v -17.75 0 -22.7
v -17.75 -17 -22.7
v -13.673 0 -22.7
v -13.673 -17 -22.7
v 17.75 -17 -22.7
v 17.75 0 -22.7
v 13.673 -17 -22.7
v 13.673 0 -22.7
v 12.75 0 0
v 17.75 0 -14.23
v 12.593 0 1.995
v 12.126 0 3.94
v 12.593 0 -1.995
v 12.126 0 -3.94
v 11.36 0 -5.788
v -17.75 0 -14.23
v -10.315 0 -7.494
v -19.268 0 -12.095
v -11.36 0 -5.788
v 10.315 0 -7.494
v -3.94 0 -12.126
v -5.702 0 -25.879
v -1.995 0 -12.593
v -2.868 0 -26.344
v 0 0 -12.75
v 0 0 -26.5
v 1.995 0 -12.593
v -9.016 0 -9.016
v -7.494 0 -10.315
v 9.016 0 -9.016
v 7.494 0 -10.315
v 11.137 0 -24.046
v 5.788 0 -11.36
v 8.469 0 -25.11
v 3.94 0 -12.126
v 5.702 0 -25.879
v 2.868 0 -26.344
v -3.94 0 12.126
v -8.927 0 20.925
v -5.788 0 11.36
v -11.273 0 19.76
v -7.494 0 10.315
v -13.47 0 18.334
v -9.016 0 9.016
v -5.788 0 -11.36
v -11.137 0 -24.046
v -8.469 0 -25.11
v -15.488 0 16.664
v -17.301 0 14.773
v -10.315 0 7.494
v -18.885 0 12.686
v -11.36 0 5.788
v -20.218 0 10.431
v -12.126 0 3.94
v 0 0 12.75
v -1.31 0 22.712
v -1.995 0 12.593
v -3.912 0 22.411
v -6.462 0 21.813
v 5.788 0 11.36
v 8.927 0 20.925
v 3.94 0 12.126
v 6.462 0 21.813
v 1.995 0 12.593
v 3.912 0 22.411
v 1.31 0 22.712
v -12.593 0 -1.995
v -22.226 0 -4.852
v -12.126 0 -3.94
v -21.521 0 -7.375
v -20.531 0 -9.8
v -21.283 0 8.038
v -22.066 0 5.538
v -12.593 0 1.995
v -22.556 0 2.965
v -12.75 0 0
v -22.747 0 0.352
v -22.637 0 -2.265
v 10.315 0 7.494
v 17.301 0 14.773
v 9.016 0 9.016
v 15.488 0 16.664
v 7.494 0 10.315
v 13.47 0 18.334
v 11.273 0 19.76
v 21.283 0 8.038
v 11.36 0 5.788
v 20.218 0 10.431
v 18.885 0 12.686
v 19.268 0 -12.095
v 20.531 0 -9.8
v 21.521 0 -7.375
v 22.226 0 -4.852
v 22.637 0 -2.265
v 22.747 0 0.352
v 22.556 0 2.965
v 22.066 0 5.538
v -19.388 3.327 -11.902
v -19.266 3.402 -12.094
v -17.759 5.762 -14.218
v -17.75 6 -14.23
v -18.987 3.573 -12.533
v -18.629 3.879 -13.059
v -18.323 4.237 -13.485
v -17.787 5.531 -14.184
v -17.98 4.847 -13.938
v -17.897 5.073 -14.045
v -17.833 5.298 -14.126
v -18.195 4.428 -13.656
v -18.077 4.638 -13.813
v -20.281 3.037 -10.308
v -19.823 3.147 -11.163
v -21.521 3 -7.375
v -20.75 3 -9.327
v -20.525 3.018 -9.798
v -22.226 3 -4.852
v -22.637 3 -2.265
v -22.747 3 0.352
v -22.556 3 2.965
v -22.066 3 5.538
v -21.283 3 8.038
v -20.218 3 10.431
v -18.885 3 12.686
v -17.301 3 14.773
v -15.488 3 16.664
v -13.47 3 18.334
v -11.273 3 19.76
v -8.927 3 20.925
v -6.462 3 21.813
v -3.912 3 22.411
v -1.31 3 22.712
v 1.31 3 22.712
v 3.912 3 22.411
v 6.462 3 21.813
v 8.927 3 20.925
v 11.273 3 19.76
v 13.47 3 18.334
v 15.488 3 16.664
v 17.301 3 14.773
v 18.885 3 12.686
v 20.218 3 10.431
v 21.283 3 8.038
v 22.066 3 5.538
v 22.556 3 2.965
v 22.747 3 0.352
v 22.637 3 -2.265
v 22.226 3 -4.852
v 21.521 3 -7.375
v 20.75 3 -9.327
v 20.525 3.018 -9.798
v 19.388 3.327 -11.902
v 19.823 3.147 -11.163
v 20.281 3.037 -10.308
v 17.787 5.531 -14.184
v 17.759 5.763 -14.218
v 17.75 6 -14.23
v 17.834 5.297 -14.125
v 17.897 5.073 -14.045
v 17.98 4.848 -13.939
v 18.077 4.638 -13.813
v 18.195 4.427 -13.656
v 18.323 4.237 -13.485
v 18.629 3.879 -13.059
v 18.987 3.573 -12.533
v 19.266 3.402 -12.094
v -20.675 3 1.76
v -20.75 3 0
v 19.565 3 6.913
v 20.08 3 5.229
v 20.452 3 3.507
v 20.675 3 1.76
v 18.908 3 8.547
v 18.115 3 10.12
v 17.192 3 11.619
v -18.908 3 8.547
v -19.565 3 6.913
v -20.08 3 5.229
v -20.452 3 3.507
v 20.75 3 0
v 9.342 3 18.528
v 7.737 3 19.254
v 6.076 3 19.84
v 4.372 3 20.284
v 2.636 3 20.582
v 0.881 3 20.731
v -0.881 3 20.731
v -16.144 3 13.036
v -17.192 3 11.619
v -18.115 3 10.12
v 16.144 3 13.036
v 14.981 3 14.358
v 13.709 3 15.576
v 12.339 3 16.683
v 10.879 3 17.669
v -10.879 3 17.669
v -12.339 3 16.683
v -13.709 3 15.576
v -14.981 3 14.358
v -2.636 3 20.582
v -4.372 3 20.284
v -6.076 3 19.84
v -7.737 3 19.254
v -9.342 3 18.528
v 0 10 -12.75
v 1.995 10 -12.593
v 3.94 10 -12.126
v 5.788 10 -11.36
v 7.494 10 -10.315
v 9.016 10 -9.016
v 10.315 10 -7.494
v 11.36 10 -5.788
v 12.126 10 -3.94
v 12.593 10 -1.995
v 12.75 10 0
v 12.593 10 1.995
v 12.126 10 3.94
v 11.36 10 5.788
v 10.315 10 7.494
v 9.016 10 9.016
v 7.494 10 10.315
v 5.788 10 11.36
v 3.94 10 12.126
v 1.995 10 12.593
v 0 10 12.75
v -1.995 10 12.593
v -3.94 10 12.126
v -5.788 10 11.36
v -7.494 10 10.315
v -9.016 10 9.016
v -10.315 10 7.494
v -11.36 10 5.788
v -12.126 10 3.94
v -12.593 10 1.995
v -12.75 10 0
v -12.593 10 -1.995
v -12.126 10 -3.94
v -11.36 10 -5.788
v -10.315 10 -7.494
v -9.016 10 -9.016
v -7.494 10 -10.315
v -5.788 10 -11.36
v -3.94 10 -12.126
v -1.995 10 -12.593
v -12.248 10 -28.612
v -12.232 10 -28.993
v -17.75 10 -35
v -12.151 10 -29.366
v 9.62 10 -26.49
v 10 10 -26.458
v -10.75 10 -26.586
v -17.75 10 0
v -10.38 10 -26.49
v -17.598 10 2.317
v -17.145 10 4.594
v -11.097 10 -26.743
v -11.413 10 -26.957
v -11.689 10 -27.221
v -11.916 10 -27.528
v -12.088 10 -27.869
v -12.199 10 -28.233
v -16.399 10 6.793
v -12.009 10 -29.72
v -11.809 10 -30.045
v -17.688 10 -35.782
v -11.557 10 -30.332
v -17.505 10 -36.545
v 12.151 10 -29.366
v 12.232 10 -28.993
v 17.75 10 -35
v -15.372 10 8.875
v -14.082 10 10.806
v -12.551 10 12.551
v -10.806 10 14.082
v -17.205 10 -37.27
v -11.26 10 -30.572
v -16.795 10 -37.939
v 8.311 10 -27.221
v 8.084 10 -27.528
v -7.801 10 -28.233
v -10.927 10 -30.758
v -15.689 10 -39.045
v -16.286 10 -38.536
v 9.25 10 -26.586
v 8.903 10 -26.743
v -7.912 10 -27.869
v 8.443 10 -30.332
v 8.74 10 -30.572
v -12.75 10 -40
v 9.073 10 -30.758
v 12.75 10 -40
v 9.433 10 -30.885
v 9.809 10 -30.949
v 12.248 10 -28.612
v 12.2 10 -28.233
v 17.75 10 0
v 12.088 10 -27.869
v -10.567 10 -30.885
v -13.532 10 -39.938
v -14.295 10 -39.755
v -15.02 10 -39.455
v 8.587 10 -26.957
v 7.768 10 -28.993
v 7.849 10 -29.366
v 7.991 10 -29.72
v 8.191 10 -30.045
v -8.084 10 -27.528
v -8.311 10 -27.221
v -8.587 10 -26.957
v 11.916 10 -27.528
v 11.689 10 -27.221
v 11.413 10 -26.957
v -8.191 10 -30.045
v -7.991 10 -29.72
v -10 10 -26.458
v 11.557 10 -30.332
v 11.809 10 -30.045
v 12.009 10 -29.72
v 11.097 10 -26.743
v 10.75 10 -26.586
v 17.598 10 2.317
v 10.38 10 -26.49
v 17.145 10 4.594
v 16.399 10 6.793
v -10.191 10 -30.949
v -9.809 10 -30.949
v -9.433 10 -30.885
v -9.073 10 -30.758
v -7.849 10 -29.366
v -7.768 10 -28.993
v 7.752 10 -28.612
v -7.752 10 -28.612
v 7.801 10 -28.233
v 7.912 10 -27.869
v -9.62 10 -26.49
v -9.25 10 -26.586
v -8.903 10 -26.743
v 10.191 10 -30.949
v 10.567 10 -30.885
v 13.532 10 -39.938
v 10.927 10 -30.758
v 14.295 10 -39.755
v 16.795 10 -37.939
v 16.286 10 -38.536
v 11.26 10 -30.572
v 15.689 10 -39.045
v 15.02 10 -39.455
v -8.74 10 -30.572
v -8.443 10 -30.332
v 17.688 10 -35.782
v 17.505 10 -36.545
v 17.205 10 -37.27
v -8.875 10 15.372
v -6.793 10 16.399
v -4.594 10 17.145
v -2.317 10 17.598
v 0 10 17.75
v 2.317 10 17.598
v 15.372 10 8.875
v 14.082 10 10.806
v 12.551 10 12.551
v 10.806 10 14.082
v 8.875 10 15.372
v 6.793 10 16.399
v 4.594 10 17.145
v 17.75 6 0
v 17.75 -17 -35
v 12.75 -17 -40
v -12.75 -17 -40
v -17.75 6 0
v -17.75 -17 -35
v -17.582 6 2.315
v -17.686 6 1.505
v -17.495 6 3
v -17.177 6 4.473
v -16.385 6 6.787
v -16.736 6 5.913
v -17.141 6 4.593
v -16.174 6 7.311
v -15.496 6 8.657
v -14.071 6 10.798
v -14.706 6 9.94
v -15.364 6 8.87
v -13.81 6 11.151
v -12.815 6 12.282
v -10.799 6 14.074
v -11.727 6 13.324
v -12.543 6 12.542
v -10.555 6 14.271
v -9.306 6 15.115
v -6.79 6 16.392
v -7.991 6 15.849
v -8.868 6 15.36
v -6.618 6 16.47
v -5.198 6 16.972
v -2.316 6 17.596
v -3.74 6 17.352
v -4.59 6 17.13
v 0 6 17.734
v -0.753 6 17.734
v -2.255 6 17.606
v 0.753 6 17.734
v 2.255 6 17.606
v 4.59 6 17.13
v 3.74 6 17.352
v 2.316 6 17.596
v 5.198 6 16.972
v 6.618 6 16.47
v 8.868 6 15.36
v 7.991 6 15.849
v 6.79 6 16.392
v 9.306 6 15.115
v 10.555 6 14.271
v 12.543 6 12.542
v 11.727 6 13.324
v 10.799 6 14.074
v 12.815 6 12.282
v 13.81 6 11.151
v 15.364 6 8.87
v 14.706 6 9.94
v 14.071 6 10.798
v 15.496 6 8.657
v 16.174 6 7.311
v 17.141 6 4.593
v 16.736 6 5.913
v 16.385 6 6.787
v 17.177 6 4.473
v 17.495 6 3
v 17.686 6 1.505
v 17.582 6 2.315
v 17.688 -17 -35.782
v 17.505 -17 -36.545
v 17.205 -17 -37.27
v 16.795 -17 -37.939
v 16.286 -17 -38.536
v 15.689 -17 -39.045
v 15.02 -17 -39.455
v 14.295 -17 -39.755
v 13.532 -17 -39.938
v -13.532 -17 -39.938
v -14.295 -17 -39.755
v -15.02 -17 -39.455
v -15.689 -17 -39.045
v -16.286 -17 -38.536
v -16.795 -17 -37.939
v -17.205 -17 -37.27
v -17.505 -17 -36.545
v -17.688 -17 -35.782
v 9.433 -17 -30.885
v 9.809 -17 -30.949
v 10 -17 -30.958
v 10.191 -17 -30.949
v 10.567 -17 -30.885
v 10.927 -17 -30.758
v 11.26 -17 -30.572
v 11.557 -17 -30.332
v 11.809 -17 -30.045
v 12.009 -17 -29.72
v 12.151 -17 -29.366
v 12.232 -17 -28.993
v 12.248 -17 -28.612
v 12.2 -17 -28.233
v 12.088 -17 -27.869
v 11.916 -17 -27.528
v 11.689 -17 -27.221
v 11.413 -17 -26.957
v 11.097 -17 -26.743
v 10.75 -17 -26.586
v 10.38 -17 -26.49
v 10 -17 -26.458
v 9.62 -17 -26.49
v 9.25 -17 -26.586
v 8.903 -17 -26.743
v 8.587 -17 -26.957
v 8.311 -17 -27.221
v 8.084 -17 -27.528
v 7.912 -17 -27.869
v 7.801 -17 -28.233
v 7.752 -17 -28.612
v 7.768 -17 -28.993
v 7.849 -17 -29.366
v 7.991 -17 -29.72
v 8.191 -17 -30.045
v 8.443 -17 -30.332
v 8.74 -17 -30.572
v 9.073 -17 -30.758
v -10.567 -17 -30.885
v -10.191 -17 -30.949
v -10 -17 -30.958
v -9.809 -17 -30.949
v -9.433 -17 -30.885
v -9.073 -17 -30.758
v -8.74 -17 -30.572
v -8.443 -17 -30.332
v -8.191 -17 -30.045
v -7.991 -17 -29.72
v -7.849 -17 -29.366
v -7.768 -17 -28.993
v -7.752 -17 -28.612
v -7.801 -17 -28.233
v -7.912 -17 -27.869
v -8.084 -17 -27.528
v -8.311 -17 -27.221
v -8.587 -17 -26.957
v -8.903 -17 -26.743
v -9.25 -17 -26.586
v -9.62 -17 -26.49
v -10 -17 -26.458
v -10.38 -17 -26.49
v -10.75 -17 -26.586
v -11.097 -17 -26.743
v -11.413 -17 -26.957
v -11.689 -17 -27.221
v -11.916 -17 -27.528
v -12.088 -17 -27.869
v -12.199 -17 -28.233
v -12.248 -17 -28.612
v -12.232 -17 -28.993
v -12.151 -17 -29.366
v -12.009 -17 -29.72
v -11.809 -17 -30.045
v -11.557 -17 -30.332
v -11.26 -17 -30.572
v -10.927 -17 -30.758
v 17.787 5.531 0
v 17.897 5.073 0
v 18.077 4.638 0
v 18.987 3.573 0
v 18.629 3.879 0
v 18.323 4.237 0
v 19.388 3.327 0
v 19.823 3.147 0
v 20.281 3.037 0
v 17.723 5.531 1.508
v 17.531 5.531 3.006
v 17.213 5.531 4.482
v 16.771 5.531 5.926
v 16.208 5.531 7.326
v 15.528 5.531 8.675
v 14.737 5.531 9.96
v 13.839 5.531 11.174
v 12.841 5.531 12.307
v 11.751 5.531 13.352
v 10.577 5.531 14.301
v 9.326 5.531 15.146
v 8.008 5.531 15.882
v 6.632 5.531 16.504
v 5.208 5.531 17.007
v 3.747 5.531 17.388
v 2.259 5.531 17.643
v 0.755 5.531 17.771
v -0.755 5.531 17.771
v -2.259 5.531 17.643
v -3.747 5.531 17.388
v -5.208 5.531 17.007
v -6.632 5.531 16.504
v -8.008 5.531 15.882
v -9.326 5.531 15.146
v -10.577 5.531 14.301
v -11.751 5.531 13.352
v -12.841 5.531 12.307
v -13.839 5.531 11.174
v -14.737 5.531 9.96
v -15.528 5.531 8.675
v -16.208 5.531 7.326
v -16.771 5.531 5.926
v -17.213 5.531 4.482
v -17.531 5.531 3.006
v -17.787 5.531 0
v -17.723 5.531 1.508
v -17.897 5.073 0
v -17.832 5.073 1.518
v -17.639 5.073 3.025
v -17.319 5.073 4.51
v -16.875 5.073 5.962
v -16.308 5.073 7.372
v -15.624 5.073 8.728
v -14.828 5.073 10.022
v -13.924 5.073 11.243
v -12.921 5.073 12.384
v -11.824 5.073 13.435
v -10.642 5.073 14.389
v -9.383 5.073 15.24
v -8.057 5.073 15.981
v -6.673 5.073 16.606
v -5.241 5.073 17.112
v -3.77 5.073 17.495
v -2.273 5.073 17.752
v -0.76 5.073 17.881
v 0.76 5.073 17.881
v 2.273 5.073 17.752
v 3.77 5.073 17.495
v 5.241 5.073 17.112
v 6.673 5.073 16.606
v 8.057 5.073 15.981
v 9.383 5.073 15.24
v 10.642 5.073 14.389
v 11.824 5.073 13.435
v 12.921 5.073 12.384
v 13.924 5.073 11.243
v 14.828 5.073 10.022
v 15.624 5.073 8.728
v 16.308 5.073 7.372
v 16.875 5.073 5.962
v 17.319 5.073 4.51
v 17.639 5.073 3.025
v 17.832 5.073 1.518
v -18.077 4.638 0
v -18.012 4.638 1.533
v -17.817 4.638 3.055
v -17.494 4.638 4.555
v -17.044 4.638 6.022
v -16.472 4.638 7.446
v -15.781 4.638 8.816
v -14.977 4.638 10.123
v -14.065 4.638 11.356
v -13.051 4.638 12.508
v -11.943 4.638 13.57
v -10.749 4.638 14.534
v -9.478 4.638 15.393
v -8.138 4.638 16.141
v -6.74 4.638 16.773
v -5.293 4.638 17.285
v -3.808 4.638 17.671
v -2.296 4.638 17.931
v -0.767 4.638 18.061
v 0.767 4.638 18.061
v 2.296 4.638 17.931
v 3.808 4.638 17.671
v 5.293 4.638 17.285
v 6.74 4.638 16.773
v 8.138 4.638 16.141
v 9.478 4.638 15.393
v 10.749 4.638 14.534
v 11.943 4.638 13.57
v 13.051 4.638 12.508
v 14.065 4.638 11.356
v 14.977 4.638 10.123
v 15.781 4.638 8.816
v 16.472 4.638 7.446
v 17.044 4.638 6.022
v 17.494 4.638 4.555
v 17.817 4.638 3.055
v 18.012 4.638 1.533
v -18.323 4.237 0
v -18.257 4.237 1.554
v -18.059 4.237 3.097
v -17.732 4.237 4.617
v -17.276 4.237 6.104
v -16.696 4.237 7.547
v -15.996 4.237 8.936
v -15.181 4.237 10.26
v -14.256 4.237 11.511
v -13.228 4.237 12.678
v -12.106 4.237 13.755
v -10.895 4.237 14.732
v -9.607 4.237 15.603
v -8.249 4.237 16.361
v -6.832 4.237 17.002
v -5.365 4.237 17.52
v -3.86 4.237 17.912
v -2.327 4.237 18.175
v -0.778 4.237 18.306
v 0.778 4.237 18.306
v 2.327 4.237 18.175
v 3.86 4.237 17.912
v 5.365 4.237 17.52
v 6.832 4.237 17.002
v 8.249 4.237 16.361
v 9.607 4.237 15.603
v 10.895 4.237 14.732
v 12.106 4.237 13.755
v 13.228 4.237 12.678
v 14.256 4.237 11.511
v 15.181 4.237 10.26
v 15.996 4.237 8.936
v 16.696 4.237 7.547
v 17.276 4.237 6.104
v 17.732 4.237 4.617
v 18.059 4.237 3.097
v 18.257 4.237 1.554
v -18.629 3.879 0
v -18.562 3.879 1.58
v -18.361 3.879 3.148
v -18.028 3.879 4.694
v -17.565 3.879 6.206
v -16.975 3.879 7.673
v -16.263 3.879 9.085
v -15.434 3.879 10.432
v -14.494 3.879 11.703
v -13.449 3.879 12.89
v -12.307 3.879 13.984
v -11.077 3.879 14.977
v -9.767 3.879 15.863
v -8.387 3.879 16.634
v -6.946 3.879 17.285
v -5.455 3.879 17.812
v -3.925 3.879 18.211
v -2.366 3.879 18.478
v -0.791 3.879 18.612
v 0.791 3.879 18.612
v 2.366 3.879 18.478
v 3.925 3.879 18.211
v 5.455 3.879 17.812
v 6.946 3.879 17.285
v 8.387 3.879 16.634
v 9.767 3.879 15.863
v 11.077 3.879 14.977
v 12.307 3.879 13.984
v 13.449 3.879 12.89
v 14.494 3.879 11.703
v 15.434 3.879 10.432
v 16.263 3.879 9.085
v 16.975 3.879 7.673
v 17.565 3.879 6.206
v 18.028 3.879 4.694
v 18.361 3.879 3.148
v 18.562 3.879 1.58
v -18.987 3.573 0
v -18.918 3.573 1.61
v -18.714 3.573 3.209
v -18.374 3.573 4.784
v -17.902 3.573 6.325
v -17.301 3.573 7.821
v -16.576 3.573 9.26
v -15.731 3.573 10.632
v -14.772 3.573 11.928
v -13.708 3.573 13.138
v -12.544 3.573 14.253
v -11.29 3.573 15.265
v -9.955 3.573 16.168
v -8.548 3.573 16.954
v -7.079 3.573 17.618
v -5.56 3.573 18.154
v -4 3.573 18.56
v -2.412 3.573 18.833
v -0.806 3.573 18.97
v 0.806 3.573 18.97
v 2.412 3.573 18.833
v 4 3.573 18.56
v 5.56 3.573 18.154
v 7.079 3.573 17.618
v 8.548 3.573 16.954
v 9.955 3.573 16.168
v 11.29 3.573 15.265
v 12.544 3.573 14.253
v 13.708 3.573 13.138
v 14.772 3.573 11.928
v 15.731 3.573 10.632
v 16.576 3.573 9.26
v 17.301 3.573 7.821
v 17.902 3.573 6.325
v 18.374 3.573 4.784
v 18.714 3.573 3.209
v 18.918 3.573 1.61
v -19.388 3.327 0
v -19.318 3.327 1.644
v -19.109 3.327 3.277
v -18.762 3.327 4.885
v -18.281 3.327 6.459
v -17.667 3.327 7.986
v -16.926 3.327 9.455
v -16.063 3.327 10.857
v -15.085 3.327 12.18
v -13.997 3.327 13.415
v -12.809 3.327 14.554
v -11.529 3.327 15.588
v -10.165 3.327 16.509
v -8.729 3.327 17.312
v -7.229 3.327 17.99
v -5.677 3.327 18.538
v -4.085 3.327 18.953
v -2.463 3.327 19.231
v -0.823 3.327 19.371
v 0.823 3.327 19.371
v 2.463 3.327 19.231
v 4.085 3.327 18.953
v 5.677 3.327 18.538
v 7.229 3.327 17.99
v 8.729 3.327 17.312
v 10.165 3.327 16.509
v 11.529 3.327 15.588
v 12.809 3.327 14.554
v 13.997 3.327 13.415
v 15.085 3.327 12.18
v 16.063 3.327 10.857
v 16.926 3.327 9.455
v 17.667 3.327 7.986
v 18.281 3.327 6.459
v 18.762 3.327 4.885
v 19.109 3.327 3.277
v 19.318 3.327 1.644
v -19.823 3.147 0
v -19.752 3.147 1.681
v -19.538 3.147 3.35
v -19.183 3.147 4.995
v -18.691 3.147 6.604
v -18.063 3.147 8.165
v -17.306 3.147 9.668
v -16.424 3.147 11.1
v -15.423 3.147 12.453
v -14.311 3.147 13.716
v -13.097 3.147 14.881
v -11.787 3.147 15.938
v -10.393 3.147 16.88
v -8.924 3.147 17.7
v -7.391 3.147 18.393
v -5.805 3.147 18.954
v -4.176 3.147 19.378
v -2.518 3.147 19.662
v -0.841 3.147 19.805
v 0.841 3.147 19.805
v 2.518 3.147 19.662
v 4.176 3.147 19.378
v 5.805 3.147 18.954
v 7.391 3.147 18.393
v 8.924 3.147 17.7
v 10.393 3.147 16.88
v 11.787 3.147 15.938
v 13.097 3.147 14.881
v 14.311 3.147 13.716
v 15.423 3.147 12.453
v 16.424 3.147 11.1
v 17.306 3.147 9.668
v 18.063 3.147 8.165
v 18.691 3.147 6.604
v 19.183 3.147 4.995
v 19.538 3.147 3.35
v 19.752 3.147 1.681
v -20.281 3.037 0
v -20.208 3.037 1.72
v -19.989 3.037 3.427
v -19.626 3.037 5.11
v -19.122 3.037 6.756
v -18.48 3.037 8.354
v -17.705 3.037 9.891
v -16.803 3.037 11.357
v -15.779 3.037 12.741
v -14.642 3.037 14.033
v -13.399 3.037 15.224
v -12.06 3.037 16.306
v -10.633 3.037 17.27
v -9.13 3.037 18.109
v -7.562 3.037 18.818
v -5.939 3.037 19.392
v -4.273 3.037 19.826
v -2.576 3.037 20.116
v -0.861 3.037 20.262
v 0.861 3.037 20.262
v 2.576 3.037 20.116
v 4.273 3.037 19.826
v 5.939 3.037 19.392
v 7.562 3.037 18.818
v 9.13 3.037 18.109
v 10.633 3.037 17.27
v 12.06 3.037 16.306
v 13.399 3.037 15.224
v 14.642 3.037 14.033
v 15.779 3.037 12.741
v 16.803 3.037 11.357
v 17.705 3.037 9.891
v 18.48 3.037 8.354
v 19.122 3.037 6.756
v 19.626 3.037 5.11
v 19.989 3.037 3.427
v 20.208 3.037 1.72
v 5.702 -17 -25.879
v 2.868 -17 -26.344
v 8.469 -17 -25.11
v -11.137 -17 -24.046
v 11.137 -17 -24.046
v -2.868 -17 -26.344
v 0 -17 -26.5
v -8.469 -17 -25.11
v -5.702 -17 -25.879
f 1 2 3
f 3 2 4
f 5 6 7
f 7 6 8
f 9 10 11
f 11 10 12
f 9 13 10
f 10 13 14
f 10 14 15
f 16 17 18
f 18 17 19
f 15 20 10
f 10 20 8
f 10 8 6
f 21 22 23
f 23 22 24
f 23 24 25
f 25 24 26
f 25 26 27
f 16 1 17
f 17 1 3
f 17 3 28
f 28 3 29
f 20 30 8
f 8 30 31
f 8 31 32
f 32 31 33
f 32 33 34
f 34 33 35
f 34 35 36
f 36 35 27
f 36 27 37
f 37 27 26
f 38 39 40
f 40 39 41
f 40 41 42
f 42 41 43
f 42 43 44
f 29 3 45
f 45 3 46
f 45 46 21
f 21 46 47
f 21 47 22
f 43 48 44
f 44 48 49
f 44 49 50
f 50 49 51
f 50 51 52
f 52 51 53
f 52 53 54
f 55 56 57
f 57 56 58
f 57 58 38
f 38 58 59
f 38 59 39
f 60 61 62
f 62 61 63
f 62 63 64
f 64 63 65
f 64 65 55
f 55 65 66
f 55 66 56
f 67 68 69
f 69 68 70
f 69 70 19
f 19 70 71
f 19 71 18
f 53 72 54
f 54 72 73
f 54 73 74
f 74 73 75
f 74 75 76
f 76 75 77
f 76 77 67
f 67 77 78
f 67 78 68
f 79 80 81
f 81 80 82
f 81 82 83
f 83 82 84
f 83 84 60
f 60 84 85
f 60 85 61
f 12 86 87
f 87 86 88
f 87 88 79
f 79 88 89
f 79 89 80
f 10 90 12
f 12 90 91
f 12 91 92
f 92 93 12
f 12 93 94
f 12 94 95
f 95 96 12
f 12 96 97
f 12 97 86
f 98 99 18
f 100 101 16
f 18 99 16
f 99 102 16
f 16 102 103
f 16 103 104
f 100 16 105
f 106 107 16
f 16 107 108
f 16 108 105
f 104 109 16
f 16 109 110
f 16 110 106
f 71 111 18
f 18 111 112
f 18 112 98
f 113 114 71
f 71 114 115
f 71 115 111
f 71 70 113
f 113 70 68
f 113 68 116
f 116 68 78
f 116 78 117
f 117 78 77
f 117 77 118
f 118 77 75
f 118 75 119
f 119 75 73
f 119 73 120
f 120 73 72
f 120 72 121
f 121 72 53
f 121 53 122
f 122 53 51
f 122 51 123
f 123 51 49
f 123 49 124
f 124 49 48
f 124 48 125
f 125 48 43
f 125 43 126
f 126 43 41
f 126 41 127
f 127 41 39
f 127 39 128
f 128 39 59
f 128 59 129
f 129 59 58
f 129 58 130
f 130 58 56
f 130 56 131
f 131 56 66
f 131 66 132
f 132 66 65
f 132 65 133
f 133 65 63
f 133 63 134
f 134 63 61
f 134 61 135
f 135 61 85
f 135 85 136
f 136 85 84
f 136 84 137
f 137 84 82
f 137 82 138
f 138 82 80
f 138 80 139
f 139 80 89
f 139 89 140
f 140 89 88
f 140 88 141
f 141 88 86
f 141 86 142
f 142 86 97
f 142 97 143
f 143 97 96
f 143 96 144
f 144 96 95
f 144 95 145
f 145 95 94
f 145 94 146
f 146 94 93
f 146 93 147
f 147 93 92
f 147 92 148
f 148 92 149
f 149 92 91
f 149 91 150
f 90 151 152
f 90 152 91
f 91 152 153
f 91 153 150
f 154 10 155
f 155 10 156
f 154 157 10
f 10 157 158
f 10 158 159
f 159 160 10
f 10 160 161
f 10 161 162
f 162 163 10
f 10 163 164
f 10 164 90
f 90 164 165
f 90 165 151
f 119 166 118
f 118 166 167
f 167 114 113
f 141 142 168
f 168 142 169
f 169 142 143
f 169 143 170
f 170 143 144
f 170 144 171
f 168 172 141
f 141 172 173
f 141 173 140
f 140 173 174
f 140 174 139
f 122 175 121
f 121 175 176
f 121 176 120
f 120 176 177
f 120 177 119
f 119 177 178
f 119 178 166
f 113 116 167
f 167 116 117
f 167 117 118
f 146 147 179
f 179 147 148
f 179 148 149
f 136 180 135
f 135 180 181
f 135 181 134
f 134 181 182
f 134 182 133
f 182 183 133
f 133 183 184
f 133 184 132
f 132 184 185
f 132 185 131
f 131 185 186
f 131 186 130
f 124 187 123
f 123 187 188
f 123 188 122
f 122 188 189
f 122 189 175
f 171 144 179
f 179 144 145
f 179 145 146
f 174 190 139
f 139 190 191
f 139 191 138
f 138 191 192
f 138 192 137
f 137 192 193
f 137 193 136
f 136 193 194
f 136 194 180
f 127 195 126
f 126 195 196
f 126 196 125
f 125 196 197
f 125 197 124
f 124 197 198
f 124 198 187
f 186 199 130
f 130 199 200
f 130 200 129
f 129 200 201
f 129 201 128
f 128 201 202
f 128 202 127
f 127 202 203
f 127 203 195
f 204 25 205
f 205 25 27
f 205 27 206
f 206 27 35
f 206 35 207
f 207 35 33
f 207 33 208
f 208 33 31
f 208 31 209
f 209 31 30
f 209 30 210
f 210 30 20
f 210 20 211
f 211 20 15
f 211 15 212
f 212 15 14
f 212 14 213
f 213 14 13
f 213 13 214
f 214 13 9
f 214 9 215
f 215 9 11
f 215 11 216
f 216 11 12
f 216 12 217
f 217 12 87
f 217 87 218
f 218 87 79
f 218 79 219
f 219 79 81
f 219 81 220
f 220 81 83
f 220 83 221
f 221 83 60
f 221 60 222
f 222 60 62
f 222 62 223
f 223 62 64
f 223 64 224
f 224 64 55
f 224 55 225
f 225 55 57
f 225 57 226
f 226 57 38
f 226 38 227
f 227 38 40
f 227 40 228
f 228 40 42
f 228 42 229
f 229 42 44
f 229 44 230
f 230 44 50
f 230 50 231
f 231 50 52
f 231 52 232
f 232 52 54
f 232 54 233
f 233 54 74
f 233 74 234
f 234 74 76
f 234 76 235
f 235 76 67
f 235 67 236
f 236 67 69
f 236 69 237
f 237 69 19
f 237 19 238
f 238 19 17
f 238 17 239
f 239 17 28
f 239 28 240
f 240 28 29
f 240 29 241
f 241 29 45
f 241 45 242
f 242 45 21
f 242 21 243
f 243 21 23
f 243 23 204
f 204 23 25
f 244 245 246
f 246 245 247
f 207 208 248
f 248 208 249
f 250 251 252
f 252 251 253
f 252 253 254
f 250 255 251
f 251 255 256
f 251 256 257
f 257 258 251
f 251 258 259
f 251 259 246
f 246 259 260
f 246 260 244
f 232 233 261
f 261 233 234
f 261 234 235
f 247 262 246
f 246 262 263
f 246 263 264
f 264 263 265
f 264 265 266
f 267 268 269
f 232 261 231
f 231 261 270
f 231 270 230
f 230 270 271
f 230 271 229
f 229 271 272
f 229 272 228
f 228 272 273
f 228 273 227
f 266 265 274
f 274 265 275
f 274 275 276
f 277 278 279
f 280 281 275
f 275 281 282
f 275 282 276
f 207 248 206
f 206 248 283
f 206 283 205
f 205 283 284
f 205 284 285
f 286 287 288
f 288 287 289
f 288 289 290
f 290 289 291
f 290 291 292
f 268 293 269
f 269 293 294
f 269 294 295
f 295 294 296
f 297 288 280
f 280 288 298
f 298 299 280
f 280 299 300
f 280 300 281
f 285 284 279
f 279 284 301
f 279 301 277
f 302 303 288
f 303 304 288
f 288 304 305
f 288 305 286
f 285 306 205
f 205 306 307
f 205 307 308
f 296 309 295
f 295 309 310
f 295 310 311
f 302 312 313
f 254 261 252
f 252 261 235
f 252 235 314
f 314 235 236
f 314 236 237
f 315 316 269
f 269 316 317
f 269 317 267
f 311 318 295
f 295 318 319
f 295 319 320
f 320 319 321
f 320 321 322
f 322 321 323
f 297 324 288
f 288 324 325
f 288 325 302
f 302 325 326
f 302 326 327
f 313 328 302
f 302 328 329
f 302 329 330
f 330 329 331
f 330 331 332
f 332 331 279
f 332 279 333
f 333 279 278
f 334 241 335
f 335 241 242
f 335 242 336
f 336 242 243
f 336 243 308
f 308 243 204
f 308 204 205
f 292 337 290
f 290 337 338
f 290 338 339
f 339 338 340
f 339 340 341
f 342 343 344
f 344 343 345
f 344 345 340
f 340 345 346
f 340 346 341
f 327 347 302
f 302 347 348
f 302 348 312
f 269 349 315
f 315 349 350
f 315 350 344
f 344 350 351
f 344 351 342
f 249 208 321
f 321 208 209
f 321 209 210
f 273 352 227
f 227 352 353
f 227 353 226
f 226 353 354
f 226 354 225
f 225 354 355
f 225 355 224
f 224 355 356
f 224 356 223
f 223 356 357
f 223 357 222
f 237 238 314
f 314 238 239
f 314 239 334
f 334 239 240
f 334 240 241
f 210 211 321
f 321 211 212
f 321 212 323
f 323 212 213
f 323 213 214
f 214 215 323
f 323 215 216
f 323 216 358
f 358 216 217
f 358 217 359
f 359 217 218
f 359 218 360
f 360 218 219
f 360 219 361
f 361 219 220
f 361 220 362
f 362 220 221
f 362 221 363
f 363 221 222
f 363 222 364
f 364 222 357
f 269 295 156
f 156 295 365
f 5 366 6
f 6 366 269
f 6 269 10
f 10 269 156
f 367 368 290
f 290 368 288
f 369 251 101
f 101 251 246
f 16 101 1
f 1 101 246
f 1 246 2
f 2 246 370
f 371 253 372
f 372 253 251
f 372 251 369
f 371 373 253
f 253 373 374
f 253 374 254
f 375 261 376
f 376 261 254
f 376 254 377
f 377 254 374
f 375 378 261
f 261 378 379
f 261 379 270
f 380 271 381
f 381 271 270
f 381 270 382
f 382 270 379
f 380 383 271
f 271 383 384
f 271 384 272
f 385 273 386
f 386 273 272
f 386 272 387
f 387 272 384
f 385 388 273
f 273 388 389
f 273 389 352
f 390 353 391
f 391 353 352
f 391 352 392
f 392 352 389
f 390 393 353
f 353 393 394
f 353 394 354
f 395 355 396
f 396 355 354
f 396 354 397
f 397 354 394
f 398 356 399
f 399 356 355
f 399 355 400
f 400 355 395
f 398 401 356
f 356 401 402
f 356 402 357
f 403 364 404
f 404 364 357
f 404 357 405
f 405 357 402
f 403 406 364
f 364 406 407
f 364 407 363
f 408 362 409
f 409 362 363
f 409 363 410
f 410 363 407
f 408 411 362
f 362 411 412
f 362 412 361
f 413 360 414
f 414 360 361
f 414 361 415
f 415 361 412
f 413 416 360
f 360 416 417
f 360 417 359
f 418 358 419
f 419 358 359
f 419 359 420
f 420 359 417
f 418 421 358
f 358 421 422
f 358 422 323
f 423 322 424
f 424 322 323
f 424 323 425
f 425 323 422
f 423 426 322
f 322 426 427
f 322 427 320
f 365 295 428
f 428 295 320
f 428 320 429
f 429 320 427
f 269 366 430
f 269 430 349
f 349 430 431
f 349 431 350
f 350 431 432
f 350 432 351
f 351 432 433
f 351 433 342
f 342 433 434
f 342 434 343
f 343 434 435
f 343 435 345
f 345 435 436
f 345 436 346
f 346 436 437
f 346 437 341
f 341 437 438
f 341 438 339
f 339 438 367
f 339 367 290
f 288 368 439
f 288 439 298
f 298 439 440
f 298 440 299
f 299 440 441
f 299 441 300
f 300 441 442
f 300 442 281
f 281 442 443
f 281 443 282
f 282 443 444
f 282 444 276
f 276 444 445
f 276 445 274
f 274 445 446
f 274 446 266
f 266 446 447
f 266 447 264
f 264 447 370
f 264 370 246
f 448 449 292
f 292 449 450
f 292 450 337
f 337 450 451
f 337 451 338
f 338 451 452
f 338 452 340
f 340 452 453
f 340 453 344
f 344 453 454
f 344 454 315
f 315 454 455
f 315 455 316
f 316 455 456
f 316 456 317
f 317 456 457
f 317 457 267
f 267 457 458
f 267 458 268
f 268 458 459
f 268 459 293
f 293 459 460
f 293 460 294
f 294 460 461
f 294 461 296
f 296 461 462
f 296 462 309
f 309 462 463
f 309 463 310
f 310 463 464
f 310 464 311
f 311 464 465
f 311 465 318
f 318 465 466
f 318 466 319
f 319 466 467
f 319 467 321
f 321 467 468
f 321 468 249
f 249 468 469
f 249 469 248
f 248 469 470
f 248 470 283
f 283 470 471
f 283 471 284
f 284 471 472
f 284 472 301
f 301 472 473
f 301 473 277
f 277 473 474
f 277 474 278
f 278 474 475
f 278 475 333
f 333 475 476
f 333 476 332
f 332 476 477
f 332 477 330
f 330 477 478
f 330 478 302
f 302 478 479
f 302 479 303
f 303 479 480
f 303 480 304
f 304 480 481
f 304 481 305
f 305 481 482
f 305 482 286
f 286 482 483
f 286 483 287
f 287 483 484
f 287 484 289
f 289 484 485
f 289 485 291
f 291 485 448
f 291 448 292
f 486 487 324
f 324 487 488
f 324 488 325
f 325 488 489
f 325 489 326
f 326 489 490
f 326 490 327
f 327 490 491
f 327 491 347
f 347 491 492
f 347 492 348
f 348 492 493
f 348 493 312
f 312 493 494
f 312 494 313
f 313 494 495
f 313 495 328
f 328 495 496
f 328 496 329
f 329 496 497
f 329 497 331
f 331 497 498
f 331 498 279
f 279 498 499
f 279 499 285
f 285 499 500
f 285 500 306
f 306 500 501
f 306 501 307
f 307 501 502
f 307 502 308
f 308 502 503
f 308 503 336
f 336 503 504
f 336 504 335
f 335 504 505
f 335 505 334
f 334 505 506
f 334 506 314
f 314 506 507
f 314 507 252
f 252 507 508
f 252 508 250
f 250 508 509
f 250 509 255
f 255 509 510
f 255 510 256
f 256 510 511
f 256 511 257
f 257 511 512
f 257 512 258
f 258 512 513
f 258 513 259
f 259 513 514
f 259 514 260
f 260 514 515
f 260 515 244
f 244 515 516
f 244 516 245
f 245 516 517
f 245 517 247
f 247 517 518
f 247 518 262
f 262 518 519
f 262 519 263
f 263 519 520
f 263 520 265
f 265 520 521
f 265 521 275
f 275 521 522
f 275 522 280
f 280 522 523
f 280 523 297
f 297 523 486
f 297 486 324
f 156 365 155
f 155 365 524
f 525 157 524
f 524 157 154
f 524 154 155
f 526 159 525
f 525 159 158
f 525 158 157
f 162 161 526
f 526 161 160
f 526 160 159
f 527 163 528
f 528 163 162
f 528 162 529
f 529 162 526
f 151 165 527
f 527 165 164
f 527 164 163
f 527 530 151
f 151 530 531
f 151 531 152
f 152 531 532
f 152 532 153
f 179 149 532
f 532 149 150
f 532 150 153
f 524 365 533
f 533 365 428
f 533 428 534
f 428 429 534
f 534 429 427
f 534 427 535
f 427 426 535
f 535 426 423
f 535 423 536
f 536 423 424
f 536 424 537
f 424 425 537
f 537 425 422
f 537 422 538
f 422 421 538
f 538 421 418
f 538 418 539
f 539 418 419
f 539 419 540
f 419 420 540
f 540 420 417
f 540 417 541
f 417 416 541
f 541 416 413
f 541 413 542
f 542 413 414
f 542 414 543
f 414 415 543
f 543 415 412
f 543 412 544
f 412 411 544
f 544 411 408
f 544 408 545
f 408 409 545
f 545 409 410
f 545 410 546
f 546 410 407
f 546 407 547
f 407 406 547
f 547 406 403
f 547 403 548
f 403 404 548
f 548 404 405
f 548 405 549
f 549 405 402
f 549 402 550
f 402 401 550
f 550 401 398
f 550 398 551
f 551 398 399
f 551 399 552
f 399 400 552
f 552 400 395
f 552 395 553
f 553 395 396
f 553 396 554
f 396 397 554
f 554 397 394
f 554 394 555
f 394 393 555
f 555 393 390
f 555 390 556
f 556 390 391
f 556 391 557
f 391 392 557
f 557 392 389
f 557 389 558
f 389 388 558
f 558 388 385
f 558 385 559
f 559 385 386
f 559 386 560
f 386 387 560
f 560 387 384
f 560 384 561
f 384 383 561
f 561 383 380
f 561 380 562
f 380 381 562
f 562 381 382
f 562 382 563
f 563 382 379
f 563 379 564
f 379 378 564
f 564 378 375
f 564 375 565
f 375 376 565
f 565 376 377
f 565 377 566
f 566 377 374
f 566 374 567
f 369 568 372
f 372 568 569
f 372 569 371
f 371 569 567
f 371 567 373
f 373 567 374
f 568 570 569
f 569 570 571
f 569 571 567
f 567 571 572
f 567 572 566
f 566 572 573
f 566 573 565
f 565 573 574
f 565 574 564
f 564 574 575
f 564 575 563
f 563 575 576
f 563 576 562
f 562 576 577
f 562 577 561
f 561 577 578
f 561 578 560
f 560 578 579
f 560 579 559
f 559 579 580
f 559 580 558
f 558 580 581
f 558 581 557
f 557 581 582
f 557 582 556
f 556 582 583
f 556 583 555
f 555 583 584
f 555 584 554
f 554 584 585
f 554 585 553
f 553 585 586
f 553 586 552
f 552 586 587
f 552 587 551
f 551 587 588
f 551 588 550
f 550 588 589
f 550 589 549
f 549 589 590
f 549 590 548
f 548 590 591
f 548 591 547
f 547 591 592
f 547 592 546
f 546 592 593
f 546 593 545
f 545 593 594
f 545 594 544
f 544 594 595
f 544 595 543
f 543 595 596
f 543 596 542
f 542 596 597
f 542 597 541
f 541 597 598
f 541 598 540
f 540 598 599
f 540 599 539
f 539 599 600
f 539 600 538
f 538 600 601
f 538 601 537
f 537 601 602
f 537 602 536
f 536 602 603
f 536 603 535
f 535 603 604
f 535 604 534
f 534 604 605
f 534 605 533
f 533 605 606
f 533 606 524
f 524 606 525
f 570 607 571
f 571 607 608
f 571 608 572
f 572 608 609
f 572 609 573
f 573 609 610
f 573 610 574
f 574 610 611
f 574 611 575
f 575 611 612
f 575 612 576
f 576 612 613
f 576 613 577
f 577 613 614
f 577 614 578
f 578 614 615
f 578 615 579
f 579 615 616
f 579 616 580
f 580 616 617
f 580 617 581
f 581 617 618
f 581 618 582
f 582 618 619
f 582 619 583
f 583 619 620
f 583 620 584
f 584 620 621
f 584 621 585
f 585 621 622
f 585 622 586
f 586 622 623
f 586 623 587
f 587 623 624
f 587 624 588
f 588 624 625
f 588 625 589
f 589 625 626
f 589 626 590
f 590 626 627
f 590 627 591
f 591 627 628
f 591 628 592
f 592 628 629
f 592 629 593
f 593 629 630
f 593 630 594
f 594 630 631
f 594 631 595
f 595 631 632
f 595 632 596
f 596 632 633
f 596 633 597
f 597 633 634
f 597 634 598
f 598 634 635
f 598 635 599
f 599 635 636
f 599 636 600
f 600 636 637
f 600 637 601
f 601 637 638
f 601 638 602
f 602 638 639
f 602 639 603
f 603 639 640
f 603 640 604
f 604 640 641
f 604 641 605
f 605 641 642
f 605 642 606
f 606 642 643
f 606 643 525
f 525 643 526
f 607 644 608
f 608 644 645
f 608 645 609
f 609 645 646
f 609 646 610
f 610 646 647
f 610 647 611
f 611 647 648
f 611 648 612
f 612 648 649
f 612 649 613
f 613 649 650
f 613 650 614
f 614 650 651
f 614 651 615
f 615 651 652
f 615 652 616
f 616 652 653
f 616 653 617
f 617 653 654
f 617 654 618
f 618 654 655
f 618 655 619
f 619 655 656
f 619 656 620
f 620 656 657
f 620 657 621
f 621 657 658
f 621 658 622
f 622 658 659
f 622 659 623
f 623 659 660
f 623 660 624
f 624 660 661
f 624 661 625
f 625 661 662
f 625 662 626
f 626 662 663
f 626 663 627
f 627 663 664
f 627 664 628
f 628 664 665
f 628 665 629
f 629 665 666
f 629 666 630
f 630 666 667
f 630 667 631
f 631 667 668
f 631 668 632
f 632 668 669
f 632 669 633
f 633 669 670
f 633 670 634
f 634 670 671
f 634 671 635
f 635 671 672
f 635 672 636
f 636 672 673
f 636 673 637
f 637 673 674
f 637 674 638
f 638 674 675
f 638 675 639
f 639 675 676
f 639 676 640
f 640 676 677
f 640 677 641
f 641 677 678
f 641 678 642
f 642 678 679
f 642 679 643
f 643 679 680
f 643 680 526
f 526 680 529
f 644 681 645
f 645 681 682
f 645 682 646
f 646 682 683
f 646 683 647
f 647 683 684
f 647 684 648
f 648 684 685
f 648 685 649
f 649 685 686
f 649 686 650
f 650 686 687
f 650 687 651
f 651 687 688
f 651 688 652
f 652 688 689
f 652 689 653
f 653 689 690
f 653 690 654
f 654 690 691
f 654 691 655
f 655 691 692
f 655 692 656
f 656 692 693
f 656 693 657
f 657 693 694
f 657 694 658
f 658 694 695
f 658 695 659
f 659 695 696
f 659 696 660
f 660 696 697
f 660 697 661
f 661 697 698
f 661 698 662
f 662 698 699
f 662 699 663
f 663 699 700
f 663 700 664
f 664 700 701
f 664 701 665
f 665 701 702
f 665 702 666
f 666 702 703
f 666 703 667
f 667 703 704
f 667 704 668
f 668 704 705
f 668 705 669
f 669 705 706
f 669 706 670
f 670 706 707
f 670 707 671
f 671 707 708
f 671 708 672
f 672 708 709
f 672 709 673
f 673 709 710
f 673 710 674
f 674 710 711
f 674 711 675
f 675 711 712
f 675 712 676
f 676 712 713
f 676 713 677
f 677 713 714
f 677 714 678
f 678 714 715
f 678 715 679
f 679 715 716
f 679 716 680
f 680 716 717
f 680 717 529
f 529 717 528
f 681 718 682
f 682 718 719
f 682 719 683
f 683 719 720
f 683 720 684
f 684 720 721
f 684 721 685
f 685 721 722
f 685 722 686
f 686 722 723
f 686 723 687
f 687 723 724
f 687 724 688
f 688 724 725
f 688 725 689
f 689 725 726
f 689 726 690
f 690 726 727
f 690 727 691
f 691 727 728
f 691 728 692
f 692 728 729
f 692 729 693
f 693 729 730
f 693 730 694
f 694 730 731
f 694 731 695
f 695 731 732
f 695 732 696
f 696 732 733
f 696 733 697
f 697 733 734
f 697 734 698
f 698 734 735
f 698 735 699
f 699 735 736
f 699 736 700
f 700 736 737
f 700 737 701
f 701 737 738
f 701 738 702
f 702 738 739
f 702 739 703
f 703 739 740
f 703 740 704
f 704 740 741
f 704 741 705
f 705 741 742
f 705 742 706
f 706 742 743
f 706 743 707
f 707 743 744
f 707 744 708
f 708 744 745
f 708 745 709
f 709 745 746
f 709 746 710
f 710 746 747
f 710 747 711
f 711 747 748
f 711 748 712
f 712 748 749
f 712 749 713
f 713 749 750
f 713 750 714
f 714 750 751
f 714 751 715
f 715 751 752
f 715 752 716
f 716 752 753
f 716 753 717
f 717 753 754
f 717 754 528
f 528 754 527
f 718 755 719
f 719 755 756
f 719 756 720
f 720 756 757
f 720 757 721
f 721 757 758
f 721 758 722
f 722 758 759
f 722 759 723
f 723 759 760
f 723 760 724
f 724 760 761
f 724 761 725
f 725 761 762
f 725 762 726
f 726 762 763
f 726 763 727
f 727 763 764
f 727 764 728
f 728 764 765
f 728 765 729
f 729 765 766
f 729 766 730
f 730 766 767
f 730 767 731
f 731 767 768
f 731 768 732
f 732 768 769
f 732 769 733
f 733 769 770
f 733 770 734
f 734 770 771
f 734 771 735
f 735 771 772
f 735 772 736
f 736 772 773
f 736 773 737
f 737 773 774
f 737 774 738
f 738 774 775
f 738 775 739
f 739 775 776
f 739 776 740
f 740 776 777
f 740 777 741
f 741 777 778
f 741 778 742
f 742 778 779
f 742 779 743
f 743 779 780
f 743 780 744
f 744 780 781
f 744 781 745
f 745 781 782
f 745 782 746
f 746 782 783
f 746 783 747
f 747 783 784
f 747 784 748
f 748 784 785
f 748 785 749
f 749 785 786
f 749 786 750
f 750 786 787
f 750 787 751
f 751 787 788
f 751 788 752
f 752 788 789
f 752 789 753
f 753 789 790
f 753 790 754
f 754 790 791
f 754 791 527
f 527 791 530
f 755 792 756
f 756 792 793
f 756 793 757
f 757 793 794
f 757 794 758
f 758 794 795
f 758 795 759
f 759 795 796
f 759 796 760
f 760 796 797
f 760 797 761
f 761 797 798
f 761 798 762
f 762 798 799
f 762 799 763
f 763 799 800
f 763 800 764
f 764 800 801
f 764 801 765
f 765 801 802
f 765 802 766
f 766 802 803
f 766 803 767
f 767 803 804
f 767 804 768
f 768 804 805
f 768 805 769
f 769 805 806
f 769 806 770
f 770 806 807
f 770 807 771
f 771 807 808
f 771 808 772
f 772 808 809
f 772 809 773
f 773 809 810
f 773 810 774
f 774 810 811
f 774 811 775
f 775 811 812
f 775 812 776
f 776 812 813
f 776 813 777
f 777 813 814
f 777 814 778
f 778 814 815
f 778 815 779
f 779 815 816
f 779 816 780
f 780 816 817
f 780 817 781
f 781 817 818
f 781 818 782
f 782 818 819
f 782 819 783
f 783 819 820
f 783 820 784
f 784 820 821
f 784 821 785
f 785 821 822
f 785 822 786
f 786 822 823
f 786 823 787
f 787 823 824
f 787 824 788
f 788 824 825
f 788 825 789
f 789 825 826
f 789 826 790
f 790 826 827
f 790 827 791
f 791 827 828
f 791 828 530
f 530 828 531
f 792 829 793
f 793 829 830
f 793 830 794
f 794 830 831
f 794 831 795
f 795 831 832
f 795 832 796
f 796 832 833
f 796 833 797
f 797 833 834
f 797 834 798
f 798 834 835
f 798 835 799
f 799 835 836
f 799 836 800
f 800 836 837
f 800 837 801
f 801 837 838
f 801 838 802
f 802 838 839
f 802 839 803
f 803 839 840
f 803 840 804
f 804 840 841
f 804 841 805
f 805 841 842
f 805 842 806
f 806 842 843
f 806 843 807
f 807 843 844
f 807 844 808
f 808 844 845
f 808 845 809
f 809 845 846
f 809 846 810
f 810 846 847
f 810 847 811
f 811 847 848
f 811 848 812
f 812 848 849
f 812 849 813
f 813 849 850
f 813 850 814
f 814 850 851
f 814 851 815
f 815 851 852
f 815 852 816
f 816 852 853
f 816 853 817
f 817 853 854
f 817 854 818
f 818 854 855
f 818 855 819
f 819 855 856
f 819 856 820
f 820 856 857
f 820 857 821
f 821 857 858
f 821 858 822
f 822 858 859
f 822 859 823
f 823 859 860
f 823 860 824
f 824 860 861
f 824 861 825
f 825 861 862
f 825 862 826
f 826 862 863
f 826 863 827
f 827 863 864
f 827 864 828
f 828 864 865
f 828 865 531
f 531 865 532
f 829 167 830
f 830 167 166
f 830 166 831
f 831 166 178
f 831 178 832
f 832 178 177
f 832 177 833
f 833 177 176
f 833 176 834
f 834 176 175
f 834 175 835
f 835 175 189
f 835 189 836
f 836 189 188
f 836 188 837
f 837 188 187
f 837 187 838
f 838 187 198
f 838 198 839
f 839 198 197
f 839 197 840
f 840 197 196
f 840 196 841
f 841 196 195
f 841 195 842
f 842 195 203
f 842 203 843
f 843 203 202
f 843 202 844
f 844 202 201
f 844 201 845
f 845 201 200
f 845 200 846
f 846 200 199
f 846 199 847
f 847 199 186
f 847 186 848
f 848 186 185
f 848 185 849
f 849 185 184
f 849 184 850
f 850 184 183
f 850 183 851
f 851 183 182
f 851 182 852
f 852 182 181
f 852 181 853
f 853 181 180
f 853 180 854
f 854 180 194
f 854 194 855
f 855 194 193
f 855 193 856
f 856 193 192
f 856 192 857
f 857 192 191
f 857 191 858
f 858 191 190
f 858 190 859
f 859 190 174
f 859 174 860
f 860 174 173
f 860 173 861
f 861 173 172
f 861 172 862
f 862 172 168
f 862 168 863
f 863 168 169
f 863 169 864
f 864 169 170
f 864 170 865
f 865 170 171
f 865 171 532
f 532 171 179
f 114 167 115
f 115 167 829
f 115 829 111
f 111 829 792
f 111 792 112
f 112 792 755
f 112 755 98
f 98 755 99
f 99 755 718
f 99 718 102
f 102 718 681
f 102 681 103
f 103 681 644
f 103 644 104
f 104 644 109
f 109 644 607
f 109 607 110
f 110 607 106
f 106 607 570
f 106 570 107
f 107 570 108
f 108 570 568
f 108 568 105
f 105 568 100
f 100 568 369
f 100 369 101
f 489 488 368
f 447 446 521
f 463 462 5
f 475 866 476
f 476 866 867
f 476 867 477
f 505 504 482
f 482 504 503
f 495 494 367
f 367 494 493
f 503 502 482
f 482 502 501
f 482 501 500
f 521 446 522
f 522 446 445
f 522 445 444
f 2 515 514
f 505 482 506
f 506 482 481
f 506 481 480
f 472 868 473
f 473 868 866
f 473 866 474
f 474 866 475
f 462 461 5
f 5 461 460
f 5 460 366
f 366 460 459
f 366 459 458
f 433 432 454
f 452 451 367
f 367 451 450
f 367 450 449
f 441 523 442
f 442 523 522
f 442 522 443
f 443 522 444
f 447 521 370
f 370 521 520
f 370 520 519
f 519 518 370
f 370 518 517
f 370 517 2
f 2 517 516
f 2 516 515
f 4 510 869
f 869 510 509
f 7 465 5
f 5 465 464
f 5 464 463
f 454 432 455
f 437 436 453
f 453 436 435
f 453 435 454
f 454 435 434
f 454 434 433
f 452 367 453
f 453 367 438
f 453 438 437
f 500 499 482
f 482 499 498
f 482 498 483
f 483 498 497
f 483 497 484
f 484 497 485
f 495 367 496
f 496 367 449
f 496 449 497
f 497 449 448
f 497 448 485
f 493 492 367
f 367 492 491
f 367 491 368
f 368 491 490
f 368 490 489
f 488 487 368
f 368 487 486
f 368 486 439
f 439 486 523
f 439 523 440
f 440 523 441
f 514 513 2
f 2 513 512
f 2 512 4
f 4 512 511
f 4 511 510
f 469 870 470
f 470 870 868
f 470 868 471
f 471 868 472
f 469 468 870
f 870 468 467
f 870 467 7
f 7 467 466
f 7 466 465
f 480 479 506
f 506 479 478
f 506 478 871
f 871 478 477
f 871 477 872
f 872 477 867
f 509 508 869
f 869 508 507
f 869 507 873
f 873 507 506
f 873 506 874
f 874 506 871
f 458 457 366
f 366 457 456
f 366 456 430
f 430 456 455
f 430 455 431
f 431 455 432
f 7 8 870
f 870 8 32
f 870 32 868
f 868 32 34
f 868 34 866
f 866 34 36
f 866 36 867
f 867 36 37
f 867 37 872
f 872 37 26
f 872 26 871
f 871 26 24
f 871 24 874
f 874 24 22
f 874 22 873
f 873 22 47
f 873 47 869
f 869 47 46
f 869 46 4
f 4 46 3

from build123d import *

# Parameters (mm, degrees)
SKETCH1_R           = 22.75
SKETCH1_R_2         = 12.75
BOSS_EXTRUDE1_DEPTH = 3
SKETCH2_R           = 12.75
BOSS_EXTRUDE2_DEPTH = 7
BOSS_EXTRUDE3_START = 3
BOSS_EXTRUDE3_DEPTH = 3
FILLET4_R           = 5
SKETCH4_R           = 2.25
CUT_EXTRUDE1_DEPTH  = 15
FILLET5_R           = 3
SKETCH6_R           = 2.25
BOSS_EXTRUDE4_DEPTH = 17
SKETCH7_R           = 26.5
CUT_EXTRUDE3_DEPTH  = 30


with BuildPart() as part:
    # Sketch1 → Boss-Extrude1 (new body)
    with BuildSketch(Plane(origin=(0, 0, 0), x_dir=(1, 0, 0), z_dir=(0, 1, 0))):
        with Locations(Location((0, 0, 0), (0, 0, 270))):
            Circle(SKETCH1_R)
        with Locations(Location((0, 0, 0), (0, 0, 270))):
            Circle(SKETCH1_R_2, mode=Mode.SUBTRACT)
    extrude(amount=BOSS_EXTRUDE1_DEPTH)

    # Sketch2 → Boss-Extrude2 (add)
    with BuildSketch(Plane(origin=(0, 3, 0), x_dir=(1, 0, 0), z_dir=(0, 1, 0))):
        with BuildLine():
            Line((17.75, 0), (17.75, 40))
            Line((17.75, 40), (-17.75, 40))
            Line((-17.75, 40), (-17.75, 0))
            ThreePointArc((-17.75, 0), (-14.209371907, -10.637492656), (-5, -17.03122133))
            ThreePointArc((-5, -17.03122133), (0, -17.75), (5, -17.03122133))
            ThreePointArc((5, -17.03122133), (14.209371907, -10.637492656), (17.75, 0))
        make_face()
        with Locations(Location((0, 0, 0), (0, 0, 270))):
            Circle(SKETCH2_R, mode=Mode.SUBTRACT)
    extrude(amount=BOSS_EXTRUDE2_DEPTH)

    # Sketch3 → Boss-Extrude3 (add)
    with BuildSketch(Plane.XZ.offset(-3).offset(BOSS_EXTRUDE3_START)):
        with BuildLine():
            Line((17.75, -40), (17.75, -14.230249471))
            ThreePointArc((17.75, -14.230249471), (0, -22.75), (-17.75, -14.230249471))
            Line((-17.75, -14.230249471), (-17.75, -40))
            Line((-17.75, -40), (17.75, -40))
        make_face()
    extrude(amount=-BOSS_EXTRUDE3_DEPTH)

    # Fillet4
    fillet4_edges = [part.edges().sort_by_distance(p)[0] for p in [
        (17.75, 5, -40),
        (-17.75, 5, -40),
    ]]
    fillet(fillet4_edges, radius=FILLET4_R)

    # Sketch4 → Cut-Extrude1 (cut)
    with BuildSketch(Plane(origin=(0, 10, 0), x_dir=(1, 0, 0), z_dir=(0, 1, 0))):
        with Locations(Location((10, 28.707521, 0), (0, 0, 270))):
            Circle(SKETCH4_R)
        with Locations(Location((-10, 28.707521, 0), (0, 0, 270))):
            Circle(SKETCH4_R)
    extrude(amount=-CUT_EXTRUDE1_DEPTH, mode=Mode.SUBTRACT)

    # Fillet5
    fillet5_edges = [part.edges().sort_by_distance(p)[0] for p in [
        (-17.75, 3, -7.115124735),
        (17.75, 3, -7.115124735),
        (0, 3, 17.75),
    ]]
    fillet(fillet5_edges, radius=FILLET5_R)

    # Sketch6 → Boss-Extrude4 (add)
    with BuildSketch(Plane(origin=(0, 0, 0), x_dir=(-1, 0, 0), z_dir=(0, -1, 0))):
        with BuildLine():
            Line((17.75, 22.7), (17.75, 35))
            ThreePointArc((17.75, 35), (16.285533906, 38.535533906), (12.75, 40))
            Line((12.75, 40), (-12.75, 40))
            ThreePointArc((-12.75, 40), (-16.285533906, 38.535533906), (-17.75, 35))
            Line((-17.75, 35), (-17.75, 22.7))
            Line((-17.75, 22.7), (17.75, 22.7))
        make_face()
        with Locations(Location((10, 28.707521, 0), (0, 0, 270))):
            Circle(SKETCH6_R, mode=Mode.SUBTRACT)
        with Locations(Location((-10, 28.707521, 0), (0, 0, 270))):
            Circle(SKETCH6_R, mode=Mode.SUBTRACT)
    extrude(amount=BOSS_EXTRUDE4_DEPTH)

    # Sketch7 → Cut-Extrude3 (cut)
    with BuildSketch(Plane(origin=(0, 0, 0), x_dir=(-1, 0, 0), z_dir=(0, -1, 0))):
        Circle(SKETCH7_R)
    extrude(amount=CUT_EXTRUDE3_DEPTH, mode=Mode.SUBTRACT)


solid = part.part
